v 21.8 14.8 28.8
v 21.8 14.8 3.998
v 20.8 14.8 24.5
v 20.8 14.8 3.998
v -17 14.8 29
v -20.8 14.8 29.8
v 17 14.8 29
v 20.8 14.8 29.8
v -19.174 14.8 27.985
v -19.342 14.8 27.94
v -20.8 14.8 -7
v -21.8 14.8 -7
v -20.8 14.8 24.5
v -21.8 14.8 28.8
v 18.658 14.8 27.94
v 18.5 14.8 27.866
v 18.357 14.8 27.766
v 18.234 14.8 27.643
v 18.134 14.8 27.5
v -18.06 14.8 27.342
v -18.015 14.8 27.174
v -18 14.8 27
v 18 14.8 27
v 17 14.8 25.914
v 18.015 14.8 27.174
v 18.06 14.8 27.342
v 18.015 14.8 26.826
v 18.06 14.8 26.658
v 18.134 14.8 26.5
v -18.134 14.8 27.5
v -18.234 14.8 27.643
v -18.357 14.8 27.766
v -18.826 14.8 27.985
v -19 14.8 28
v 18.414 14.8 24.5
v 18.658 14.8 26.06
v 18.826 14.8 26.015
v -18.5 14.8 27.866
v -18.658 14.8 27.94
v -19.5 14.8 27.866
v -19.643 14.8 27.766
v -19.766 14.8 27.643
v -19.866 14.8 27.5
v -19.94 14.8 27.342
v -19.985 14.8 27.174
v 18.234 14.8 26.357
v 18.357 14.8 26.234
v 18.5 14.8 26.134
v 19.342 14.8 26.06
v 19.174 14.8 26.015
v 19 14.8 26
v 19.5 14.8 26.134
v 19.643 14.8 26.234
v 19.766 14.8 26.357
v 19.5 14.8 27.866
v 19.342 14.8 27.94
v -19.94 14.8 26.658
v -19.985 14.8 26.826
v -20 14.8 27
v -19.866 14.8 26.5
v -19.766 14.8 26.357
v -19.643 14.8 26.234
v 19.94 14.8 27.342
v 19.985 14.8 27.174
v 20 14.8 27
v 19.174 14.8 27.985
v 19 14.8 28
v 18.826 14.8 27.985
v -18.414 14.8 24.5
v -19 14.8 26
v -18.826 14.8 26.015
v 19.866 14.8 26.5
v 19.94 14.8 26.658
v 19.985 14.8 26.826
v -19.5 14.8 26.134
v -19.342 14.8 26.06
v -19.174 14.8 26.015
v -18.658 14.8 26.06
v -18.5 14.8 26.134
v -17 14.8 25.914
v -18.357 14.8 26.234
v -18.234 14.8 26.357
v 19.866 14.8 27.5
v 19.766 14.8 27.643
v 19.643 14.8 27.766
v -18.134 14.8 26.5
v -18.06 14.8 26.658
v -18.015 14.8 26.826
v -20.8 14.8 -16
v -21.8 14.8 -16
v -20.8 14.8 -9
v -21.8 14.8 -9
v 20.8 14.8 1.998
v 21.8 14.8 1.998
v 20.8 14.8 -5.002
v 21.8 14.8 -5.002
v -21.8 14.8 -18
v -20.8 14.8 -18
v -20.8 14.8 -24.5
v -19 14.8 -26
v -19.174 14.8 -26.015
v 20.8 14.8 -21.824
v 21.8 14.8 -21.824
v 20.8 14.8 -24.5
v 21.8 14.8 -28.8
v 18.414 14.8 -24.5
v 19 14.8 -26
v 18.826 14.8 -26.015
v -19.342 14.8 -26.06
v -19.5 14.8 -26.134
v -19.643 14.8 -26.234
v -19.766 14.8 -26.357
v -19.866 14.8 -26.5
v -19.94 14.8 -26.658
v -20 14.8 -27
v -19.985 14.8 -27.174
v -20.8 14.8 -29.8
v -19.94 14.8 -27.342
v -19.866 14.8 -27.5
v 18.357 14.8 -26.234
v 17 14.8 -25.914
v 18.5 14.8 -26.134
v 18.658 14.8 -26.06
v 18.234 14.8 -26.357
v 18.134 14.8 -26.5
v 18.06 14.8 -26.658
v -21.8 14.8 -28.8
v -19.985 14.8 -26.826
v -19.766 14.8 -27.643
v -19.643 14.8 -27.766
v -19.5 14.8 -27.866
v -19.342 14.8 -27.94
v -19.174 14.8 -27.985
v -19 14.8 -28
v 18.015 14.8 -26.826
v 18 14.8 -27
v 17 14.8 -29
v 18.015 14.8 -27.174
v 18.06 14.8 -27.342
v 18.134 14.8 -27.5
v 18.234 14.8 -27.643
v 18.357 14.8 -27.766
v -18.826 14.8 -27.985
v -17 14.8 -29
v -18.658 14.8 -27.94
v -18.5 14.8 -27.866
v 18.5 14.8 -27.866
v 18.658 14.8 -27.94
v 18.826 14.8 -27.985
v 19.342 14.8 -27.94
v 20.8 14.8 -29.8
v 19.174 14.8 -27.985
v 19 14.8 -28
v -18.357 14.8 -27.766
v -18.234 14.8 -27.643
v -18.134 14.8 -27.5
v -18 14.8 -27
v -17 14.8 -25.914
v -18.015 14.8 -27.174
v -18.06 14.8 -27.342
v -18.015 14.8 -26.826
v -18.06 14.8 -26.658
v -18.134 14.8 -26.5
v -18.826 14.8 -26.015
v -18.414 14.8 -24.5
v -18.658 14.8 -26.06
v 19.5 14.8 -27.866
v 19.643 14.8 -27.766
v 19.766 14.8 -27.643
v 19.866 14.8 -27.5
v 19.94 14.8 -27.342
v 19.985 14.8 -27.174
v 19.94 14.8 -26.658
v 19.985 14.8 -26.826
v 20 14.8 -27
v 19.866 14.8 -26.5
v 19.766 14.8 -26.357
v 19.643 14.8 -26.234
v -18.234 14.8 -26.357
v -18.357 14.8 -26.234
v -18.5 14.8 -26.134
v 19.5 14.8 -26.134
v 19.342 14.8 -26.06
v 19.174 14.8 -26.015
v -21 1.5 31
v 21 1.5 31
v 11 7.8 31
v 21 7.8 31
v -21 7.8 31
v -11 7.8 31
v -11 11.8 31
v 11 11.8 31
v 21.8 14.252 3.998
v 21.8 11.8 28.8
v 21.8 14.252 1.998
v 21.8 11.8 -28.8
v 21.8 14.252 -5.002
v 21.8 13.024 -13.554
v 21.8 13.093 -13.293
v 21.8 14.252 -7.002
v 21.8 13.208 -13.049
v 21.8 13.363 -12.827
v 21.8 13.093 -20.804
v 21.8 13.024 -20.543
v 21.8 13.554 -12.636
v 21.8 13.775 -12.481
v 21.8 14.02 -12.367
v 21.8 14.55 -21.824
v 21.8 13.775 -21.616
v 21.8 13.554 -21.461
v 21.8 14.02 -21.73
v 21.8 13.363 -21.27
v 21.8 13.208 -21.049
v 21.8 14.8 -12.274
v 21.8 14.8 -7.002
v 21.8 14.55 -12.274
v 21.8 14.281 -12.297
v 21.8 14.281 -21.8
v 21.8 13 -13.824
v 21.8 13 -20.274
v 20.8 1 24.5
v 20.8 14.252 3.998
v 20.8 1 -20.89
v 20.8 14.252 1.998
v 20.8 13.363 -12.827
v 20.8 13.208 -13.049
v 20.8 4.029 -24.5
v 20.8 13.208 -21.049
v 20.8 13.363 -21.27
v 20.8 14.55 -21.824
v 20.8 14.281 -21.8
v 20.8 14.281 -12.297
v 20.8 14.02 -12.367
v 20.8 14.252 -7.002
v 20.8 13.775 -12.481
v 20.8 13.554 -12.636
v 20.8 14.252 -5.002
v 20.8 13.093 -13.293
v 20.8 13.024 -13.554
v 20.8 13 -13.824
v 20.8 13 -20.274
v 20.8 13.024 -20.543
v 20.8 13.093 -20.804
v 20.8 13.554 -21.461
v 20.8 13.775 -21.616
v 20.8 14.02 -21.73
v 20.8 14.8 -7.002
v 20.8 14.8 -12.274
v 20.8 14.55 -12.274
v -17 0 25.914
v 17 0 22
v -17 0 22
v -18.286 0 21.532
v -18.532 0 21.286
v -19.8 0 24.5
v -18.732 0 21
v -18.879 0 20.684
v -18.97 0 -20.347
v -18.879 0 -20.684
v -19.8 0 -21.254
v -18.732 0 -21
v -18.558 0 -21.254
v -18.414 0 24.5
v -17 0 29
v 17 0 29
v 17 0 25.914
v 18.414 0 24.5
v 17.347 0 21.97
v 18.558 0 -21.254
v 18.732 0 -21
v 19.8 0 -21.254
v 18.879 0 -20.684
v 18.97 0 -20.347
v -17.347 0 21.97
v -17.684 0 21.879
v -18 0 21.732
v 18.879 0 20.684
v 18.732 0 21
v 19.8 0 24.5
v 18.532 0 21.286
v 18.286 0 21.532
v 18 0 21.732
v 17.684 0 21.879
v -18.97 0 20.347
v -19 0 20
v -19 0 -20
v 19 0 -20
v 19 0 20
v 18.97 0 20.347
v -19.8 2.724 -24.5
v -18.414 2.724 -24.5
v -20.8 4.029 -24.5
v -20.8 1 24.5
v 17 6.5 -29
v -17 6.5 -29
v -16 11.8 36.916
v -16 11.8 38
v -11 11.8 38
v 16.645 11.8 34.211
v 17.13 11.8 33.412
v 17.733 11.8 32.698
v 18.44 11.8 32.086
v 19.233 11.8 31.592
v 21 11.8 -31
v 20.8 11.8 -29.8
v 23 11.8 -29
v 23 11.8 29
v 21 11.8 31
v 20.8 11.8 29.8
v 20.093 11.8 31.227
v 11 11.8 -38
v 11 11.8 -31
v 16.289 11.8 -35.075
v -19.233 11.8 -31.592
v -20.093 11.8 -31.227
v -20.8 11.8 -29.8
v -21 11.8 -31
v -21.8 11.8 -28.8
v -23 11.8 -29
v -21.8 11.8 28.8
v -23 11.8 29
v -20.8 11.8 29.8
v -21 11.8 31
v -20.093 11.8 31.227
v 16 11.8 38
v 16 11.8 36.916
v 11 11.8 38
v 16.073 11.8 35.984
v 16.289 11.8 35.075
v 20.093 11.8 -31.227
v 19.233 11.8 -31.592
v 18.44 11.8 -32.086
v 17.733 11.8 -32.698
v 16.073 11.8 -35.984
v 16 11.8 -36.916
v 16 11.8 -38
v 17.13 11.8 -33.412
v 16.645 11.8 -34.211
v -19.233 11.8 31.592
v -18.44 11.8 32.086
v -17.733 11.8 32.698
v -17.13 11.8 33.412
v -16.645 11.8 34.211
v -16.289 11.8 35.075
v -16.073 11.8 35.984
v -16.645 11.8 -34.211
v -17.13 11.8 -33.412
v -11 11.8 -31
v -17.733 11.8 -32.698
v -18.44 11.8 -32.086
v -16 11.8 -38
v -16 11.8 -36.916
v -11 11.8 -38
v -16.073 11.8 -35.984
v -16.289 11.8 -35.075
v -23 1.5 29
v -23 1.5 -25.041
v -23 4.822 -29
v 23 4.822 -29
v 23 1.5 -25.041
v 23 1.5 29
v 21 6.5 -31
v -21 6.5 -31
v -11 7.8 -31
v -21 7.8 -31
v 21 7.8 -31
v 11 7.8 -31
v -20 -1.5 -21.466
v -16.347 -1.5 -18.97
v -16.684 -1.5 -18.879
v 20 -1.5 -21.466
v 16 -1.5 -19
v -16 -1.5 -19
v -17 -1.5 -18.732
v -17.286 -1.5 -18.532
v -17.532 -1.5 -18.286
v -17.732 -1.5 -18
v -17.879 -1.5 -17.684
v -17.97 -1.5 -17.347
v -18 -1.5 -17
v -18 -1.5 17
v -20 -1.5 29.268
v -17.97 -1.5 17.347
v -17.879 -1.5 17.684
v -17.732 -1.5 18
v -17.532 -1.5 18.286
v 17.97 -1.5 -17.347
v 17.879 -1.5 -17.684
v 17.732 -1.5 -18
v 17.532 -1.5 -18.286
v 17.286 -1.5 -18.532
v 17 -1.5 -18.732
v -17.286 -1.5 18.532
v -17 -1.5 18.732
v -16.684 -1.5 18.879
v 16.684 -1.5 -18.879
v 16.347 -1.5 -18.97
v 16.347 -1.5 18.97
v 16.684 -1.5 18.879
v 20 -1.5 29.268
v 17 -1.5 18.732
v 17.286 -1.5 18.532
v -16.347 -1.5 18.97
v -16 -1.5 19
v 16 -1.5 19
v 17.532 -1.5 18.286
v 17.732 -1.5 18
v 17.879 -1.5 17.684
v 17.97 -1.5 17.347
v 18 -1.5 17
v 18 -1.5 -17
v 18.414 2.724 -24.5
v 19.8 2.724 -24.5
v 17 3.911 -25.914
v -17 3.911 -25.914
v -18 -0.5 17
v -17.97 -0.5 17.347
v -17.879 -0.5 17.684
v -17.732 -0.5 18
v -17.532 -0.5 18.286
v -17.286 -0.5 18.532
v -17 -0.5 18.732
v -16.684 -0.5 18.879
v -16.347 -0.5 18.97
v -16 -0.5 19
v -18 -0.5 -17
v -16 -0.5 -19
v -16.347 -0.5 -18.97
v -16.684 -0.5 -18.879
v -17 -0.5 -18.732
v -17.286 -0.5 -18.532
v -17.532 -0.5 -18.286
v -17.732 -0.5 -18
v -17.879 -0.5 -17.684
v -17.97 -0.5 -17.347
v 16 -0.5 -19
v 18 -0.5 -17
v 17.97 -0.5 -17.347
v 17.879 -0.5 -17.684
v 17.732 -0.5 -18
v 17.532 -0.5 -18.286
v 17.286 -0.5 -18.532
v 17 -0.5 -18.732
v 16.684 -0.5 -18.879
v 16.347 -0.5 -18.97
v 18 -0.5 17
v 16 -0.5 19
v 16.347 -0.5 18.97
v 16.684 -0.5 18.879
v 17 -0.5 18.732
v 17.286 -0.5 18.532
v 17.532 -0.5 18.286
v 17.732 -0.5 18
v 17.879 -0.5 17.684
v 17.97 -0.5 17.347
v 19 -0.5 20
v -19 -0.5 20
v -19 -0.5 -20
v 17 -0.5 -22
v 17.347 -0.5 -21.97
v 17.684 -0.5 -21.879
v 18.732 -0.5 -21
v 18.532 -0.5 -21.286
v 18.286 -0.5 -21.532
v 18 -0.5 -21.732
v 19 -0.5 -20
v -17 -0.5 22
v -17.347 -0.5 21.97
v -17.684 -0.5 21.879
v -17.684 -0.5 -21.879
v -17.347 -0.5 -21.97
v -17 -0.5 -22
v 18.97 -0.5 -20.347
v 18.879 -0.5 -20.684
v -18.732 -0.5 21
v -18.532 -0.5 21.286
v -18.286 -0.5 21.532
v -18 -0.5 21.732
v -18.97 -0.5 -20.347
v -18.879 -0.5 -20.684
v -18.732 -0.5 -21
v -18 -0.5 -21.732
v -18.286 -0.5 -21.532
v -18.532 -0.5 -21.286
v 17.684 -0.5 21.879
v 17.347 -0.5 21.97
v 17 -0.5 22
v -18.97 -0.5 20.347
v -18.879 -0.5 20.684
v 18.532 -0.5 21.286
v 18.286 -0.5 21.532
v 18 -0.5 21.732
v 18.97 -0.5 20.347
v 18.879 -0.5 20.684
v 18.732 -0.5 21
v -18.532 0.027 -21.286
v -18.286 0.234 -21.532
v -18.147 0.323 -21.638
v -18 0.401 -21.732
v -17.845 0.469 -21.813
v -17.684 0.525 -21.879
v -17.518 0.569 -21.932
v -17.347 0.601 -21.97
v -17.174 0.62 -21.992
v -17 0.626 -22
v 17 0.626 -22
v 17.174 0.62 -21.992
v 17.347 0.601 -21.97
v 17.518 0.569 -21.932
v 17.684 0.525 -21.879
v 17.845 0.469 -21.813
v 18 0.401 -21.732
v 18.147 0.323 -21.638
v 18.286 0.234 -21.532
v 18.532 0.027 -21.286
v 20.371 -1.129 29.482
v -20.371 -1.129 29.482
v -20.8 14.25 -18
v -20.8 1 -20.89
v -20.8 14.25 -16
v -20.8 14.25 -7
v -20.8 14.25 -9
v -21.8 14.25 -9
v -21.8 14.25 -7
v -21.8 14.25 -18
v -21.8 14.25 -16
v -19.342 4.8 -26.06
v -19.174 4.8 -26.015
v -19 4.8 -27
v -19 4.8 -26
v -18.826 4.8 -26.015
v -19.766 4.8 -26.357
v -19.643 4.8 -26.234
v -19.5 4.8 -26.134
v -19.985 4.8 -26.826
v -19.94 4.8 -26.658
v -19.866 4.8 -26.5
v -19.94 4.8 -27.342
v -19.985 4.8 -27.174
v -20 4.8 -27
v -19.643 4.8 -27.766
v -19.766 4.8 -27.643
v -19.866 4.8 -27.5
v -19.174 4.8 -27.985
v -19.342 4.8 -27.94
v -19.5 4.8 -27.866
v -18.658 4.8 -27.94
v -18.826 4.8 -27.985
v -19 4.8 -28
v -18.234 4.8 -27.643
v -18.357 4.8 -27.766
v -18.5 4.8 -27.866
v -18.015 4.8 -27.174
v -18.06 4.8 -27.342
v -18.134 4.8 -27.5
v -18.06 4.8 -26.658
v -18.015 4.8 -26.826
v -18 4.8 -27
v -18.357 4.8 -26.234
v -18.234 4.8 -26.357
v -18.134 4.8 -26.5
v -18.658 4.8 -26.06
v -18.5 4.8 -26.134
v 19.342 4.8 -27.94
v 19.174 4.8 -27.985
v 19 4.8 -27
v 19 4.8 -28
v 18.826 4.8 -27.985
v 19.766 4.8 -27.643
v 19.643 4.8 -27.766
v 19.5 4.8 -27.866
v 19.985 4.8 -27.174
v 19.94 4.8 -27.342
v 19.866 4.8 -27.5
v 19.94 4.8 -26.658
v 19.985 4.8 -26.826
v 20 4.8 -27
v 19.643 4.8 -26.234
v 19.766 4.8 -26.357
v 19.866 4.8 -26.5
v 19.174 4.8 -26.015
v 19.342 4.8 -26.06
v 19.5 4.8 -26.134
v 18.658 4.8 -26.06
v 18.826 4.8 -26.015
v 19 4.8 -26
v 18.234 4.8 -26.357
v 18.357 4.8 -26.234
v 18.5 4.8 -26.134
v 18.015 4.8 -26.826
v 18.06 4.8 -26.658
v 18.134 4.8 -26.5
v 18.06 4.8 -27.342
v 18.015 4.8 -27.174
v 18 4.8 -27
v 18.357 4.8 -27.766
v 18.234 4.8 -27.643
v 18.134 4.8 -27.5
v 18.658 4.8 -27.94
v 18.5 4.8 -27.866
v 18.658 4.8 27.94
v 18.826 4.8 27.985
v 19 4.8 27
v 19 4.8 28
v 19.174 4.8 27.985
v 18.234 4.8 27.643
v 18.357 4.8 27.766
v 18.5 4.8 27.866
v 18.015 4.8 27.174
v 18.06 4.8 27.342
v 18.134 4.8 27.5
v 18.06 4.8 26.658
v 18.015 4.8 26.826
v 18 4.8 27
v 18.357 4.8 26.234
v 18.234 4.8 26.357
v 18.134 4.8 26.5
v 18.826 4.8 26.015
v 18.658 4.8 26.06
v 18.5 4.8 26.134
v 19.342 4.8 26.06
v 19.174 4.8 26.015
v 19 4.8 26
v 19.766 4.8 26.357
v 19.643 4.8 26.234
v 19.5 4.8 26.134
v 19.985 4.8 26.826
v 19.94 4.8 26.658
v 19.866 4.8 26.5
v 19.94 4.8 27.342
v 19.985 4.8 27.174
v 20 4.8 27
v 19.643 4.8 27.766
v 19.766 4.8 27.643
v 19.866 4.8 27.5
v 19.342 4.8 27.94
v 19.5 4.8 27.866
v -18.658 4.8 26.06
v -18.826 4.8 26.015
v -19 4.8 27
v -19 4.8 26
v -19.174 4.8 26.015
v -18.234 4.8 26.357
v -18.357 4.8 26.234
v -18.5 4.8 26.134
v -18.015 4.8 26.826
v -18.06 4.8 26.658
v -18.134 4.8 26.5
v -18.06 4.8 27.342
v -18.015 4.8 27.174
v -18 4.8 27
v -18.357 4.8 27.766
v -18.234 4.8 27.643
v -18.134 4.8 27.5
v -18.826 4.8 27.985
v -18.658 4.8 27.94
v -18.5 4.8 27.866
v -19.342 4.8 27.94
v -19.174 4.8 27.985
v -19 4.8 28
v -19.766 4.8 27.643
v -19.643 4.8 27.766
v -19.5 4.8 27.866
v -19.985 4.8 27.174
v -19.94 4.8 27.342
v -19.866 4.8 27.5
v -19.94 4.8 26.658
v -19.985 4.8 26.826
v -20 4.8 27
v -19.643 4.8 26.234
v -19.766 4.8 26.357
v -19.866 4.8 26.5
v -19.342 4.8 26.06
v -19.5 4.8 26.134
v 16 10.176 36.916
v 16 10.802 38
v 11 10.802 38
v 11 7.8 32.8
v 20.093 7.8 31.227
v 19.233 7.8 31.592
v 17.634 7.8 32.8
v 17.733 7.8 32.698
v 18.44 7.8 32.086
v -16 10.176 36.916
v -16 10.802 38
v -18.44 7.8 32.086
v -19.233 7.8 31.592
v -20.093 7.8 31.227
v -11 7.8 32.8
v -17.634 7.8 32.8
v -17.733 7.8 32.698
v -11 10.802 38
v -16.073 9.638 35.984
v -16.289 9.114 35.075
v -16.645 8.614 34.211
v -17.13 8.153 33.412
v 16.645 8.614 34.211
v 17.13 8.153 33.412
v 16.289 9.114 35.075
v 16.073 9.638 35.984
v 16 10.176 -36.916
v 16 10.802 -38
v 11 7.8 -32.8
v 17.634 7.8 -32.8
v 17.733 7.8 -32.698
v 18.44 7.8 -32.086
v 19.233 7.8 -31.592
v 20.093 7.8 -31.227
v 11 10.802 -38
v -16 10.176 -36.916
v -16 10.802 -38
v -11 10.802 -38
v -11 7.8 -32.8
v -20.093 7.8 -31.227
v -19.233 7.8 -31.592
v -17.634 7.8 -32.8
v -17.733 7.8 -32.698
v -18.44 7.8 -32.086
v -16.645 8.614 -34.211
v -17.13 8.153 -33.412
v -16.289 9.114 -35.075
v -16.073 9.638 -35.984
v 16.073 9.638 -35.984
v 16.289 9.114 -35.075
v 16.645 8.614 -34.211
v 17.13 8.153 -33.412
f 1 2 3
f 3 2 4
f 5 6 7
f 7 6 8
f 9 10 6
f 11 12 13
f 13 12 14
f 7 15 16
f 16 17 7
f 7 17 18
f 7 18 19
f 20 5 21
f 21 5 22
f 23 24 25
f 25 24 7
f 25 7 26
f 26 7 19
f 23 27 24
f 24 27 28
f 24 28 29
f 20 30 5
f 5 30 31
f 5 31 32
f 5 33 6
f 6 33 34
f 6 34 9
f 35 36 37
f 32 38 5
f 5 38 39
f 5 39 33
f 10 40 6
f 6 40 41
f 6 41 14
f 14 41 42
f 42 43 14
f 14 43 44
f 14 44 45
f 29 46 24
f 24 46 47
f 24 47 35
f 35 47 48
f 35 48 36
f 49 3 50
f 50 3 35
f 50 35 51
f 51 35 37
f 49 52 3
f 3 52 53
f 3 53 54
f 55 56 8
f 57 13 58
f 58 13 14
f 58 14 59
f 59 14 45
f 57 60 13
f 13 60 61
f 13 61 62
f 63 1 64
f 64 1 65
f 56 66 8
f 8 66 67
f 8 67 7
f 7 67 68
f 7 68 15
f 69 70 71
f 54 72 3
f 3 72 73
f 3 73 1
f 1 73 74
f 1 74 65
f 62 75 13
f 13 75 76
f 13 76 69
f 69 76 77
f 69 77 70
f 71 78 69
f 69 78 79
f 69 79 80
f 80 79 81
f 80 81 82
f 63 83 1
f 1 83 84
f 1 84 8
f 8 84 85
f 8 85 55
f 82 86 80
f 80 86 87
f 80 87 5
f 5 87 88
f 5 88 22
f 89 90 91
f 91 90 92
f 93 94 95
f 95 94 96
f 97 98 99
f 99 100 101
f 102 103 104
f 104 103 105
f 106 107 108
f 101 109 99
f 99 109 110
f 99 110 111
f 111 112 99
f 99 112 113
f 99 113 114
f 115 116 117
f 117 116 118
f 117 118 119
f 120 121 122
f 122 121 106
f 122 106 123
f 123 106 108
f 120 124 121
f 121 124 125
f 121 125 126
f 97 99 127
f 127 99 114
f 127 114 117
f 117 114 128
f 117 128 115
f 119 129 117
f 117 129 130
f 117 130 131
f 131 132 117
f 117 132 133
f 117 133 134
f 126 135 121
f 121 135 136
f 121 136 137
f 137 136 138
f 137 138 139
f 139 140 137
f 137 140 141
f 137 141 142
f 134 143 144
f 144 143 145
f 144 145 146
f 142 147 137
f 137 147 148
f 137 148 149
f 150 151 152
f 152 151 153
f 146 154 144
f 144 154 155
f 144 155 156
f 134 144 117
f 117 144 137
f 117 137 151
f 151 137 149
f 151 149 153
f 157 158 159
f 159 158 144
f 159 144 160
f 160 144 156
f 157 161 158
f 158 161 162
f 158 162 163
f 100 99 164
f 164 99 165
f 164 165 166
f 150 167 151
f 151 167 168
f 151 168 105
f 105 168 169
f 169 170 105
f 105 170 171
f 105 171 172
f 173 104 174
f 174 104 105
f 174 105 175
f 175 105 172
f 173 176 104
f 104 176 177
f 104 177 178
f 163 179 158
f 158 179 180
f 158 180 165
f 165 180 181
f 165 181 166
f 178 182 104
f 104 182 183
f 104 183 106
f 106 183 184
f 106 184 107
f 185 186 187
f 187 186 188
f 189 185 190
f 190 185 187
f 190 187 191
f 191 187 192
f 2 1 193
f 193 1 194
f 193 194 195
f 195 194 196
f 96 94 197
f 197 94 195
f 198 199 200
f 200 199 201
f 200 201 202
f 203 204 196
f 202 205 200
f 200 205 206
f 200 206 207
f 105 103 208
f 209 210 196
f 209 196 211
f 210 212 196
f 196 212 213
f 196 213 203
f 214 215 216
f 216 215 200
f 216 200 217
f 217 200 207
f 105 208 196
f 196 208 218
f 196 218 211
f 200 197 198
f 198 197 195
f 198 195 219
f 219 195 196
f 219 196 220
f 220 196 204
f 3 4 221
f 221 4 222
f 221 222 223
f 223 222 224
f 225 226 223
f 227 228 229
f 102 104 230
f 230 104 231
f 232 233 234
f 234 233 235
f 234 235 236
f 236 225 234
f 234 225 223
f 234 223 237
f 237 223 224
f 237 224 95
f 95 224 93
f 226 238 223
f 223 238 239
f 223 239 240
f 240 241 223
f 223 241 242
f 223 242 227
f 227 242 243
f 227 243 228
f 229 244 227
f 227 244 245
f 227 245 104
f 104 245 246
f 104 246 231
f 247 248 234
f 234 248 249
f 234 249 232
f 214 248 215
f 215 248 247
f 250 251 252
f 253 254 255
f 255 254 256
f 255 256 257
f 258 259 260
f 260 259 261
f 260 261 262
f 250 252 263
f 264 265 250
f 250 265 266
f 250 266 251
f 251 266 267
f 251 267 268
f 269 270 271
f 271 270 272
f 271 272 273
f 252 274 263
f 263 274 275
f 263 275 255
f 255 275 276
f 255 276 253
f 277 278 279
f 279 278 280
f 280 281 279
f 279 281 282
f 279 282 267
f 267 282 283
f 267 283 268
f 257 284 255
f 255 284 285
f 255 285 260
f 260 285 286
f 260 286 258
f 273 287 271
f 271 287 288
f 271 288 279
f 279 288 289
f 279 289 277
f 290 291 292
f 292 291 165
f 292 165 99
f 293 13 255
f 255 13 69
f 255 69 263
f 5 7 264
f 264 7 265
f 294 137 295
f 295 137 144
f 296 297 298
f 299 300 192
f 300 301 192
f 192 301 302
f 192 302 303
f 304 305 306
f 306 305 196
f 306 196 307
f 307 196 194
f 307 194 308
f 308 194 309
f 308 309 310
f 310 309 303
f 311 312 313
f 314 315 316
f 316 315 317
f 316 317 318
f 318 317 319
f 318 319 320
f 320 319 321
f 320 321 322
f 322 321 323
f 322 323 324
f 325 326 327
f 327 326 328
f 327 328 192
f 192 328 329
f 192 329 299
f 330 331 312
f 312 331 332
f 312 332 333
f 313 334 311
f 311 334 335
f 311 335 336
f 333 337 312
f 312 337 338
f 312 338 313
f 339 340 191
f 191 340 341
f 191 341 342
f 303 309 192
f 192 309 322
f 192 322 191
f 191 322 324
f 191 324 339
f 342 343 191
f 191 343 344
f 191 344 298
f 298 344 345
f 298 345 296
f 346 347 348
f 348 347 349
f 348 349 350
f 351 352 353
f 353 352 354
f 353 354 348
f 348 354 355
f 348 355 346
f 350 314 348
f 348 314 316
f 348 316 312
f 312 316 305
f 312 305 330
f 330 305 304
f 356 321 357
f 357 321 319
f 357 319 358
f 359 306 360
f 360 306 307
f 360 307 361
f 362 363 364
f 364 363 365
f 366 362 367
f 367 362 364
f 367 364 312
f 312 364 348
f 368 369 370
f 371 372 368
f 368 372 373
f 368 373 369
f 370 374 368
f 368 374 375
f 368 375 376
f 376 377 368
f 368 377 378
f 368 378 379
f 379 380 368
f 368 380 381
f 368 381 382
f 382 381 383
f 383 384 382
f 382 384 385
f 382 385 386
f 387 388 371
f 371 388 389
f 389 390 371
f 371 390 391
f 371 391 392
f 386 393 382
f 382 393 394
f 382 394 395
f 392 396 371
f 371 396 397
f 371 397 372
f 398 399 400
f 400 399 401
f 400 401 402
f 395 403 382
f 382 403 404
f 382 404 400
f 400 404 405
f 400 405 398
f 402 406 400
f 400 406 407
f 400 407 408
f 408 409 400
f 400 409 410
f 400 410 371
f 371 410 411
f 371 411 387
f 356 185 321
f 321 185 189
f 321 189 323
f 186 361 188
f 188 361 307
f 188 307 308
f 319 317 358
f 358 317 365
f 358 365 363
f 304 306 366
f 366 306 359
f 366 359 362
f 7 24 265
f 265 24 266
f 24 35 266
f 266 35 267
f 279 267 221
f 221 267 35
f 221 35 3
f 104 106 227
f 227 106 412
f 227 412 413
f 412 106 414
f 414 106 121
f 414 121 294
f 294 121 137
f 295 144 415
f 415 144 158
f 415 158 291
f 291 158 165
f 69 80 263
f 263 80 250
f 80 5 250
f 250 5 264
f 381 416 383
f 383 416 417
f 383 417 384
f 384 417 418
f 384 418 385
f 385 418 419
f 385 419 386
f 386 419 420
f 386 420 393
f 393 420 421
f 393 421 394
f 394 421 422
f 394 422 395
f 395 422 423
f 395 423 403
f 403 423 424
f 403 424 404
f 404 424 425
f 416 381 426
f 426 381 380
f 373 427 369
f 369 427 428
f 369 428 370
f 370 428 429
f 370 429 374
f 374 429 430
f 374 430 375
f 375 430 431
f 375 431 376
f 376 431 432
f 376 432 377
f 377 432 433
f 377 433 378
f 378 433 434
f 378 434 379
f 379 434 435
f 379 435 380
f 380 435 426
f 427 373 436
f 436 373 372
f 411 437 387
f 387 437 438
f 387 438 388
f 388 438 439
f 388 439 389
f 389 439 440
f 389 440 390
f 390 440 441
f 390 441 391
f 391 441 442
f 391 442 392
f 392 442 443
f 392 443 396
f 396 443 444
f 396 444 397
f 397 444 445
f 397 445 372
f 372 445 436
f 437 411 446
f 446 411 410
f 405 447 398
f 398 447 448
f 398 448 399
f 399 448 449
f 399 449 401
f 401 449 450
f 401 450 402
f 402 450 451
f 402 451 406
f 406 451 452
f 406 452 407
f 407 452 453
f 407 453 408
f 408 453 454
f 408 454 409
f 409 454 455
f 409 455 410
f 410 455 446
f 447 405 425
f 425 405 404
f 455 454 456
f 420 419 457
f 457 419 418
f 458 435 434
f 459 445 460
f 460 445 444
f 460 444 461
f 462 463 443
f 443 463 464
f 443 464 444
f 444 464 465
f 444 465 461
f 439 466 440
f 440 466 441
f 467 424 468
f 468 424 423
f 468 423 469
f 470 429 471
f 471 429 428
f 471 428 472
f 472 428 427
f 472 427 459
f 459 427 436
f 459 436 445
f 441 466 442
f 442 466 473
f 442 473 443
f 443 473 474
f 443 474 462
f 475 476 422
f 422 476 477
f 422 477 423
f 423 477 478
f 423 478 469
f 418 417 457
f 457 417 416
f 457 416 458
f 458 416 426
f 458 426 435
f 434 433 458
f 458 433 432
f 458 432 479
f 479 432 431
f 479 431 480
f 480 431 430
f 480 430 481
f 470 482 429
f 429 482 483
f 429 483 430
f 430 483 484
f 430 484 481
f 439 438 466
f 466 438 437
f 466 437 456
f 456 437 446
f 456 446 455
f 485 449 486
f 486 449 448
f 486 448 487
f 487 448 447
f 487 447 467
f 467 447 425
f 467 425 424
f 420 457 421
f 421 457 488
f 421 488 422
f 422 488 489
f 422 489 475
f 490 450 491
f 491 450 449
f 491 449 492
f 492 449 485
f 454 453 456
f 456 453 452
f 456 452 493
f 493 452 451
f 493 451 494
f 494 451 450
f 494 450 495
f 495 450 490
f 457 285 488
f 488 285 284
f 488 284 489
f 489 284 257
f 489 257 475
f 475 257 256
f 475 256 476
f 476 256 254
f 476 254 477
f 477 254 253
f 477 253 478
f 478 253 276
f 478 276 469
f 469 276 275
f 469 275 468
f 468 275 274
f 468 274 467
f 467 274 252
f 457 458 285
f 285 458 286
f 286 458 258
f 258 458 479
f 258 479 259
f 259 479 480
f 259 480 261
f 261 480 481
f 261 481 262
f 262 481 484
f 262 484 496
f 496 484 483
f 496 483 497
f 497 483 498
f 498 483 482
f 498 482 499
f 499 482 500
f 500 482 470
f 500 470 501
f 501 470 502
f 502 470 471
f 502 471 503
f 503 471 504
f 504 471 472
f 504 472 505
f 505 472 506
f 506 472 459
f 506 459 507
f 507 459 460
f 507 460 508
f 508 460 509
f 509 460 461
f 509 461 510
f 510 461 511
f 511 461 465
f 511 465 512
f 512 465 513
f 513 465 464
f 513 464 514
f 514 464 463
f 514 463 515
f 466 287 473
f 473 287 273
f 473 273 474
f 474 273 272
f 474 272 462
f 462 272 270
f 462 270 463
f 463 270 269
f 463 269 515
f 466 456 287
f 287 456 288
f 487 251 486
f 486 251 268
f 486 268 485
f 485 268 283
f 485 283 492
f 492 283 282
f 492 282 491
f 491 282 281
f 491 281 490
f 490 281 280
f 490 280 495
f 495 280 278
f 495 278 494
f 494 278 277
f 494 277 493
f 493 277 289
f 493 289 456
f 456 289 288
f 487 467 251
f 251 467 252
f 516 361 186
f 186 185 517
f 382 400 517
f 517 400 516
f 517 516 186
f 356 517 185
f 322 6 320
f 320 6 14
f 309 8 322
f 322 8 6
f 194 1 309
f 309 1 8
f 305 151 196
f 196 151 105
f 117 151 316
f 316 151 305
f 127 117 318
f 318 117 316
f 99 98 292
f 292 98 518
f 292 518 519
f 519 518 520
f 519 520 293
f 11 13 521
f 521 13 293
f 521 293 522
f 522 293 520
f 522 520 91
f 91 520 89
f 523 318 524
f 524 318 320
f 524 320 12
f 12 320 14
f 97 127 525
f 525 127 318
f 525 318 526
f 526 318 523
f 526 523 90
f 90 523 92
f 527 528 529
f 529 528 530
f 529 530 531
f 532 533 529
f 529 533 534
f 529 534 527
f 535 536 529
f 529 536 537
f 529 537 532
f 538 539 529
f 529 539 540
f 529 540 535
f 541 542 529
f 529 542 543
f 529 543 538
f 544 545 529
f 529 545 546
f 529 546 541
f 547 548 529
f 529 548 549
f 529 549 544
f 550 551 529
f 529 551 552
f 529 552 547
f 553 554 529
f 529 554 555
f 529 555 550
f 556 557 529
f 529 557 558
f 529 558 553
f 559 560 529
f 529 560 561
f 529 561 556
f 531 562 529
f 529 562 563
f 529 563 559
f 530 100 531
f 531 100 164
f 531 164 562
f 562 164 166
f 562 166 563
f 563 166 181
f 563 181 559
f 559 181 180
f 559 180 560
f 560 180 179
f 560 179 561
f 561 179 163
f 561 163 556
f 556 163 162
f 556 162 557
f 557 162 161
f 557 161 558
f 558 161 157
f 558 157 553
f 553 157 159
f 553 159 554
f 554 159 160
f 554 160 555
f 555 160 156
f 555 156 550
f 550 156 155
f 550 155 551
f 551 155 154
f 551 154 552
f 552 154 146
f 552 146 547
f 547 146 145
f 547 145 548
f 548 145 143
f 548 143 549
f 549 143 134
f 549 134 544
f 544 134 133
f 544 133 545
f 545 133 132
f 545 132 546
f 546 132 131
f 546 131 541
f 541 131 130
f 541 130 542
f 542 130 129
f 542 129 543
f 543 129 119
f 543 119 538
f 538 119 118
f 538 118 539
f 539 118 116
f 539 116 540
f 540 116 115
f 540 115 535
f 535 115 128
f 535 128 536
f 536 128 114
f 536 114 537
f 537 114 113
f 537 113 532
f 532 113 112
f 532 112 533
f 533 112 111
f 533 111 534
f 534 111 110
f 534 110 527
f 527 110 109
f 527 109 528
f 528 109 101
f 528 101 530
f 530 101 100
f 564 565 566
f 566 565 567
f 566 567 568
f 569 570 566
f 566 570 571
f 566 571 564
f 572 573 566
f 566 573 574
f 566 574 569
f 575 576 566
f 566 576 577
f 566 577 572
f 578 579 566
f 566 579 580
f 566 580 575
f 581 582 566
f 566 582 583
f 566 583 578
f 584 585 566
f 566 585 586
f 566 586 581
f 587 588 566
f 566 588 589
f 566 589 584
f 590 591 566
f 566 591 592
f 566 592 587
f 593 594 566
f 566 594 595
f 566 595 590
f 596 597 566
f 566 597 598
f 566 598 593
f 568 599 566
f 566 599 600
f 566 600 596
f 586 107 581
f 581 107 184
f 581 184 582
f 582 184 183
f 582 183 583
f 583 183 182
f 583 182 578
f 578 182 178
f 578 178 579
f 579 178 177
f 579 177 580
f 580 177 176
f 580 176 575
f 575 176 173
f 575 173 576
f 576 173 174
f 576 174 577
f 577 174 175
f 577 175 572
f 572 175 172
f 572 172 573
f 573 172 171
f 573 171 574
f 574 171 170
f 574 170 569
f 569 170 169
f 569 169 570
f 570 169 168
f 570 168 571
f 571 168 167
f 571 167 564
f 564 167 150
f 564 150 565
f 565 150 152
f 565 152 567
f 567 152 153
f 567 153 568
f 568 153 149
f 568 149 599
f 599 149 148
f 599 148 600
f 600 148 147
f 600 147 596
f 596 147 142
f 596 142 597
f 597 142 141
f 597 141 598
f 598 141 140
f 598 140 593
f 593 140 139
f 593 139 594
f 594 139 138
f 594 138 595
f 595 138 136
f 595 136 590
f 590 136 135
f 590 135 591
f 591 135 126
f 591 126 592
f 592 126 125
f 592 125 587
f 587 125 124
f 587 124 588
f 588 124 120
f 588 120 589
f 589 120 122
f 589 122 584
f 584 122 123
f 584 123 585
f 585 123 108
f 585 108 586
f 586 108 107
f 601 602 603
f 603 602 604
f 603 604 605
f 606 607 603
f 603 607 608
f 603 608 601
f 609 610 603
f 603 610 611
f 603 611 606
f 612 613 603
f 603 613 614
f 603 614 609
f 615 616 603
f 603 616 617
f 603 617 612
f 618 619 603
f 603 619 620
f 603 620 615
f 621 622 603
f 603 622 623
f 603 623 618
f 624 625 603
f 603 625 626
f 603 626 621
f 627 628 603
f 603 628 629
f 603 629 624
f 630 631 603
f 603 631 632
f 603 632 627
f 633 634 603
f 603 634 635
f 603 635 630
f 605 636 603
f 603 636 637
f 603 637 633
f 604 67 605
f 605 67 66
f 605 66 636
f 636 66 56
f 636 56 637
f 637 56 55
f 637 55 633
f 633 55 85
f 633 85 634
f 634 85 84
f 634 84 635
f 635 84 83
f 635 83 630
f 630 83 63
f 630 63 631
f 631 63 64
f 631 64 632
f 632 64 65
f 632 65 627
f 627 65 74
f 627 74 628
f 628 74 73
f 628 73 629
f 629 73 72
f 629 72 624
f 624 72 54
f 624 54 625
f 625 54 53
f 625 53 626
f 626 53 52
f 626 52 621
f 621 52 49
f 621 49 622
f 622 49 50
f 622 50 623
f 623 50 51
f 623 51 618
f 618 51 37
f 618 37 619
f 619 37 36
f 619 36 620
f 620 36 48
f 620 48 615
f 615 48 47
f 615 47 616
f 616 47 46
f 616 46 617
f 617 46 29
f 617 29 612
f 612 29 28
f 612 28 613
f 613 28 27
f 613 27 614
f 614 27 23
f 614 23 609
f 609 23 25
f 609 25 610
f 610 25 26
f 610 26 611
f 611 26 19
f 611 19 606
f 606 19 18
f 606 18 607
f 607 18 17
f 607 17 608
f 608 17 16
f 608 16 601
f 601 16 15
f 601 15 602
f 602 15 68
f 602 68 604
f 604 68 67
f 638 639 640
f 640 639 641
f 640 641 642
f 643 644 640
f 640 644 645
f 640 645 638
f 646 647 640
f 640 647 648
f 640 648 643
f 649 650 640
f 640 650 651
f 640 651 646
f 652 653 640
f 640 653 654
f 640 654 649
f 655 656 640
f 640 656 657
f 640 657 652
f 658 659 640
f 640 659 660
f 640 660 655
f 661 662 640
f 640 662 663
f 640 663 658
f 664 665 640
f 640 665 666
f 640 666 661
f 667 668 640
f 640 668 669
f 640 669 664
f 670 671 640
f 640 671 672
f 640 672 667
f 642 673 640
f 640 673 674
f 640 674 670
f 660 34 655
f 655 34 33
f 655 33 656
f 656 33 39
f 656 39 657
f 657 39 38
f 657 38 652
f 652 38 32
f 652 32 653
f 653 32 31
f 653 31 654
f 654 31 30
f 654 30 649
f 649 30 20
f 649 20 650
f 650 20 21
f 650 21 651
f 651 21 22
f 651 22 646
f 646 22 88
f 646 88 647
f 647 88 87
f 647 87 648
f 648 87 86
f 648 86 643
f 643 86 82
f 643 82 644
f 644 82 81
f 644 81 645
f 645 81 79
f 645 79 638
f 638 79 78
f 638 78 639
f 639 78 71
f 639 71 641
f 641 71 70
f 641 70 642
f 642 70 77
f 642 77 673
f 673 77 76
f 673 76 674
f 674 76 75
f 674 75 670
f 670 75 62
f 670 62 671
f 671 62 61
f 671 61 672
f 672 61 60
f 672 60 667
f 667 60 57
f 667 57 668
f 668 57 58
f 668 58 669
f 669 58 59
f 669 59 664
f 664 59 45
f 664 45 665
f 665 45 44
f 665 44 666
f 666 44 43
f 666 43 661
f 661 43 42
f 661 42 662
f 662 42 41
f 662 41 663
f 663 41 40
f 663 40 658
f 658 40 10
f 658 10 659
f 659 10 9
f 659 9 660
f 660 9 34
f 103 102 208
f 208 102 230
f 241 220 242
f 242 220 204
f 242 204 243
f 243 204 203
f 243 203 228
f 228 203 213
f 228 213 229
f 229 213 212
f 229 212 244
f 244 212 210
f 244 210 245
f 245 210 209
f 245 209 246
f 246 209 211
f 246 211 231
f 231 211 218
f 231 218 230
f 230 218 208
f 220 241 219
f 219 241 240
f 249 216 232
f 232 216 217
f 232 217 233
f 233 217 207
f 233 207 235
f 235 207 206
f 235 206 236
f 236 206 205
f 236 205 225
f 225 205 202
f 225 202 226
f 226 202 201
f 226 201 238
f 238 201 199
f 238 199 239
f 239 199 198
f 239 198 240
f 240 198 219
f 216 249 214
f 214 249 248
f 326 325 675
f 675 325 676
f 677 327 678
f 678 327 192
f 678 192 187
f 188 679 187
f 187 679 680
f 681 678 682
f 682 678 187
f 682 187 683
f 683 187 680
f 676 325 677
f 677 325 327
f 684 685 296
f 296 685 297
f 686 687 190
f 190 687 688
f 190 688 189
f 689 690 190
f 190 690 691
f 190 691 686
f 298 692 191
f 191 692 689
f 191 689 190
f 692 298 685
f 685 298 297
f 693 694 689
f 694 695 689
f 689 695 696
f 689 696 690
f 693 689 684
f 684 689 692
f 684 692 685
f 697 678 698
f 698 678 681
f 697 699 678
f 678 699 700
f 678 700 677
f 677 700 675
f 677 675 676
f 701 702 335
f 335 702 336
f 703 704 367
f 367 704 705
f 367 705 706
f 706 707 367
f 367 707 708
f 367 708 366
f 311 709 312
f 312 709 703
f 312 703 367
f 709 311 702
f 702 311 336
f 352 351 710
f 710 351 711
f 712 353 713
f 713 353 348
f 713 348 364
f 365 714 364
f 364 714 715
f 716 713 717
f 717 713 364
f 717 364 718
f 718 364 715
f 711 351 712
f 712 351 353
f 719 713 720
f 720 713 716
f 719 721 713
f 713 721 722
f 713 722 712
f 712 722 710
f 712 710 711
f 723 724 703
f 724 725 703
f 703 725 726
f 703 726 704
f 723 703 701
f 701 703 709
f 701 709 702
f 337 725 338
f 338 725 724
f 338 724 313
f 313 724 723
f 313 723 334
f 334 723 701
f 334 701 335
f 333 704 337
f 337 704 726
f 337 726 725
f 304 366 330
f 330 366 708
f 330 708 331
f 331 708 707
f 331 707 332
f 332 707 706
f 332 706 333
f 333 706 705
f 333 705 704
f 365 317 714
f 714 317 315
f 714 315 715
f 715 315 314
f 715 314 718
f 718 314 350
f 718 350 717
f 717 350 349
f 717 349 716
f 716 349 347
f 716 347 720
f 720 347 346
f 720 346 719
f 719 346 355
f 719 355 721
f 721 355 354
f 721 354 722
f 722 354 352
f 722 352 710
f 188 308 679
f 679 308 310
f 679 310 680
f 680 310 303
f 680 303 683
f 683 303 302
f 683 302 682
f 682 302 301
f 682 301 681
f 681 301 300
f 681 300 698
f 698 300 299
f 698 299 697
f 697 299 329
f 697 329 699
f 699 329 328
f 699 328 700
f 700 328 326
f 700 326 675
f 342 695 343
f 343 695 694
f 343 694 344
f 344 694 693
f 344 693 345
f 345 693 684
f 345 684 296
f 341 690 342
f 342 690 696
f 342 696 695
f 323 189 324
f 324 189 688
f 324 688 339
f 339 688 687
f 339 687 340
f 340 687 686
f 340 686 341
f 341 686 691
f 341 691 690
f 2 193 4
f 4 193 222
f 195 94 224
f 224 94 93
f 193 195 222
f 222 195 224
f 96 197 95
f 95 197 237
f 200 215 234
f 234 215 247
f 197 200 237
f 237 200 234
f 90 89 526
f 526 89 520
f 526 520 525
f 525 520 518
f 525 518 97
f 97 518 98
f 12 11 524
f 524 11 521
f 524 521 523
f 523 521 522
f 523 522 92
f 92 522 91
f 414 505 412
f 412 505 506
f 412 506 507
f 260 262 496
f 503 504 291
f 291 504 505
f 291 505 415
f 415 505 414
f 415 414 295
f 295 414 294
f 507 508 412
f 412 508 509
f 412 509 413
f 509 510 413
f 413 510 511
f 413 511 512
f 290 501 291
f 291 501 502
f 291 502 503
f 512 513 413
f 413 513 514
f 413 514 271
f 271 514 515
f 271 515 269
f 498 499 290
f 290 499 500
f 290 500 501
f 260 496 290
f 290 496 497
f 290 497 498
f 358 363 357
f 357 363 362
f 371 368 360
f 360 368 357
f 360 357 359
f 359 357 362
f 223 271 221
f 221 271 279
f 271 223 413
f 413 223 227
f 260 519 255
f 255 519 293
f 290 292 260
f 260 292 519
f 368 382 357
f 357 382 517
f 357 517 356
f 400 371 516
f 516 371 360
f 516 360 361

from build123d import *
from OCP.BRepFilletAPI import BRepFilletAPI_MakeChamfer

# Parameters (mm, degrees)
SKETCH1_W                           = 46
SKETCH1_H                           = 62
SKETCH1_W_2                         = 42
SKETCH1_H_2                         = 58
MAIN_SKETCH_DEPTH                   = 11.8
SKETCH2_W                           = 46
SKETCH2_H                           = 62
FLOOR_2_DEPTH                       = 1.5
CHAMFER_OUTER_CORNERS_SIZE          = 2
MATERIAL_FOR_HOLES_DEPTH            = 11.8
GLASS_HOLE_DEPTH                    = 5
GLASS_GLUING_SURFACE_DEPTH          = 0.5
CHAMFER_TOP_SIZE                    = 3
CHAMFER_TOP_SIZE2                   = 1.732050808
SKETCH21_R                          = 1
MOUNTING_HOLES_DEPTH                = 7
LOWER_START                         = 14.8
SKETCH22_R                          = 1
LOWER_TAB_DEPTH                     = 14.8
TYPE_C_CONNECTOR_DEPTH              = 10
SKETCH20_W                          = 5
SKETCH20_H                          = 4
STRAP_MOUNTS_DEPTH                  = 7
STRAP_CHAMFER_SIZE                  = 5.2
STRAP_CHAMFER_SIZE2                 = 3.0022214
STRAP_CHAMFER_OF_STRAP_MIRROR_SIZE  = 5.2
STRAP_CHAMFER_OF_STRAP_MIRROR_SIZE2 = 3.0022214
STRAP_FILLET_R                      = 6
SKETCH26_W                          = 2
SKETCH26_H                          = 0.54848205
BUTTON_CUTOUT_DEPTH                 = 10
SKETCH28_W                          = 2
SKETCH28_H                          = 0.55
CUT_EXTRUDE21_DEPTH                 = 1.8
CHAMFER7_START                      = -22
CHAMFER7_DEPTH                      = 44
CHAMFER7_2_DEPTH                    = 5
CHAMFER7_START_2                    = 17
CHAMFER7_3_DEPTH                    = 5
CHAMFER7_START_3                    = 4.8
CHAMFER7_4_OUTLINE_R                = 1
CHAMFER7_4_DEPTH                    = 2.2
CHAMFER7_5_DEPTH                    = 4.8
CHAMFER8_SIZE                       = 8
CHAMFER8_SIZE2                      = 9.534028741
CHAMFER11_SIZE                      = 1
CHAMFER12_SIZE                      = 3


with BuildPart() as part:
    # Sketch1 → Main sketch (new body)
    with BuildSketch(Plane(origin=(0, 0, 0), x_dir=(1, 0, 0), z_dir=(0, 1, 0))):
        Rectangle(SKETCH1_W, SKETCH1_H)
        Rectangle(SKETCH1_W_2, SKETCH1_H_2, mode=Mode.SUBTRACT)
    extrude(amount=MAIN_SKETCH_DEPTH)

    # Sketch2 → Floor 2 (add)
    with BuildSketch(Plane.XZ):
        Rectangle(SKETCH2_W, SKETCH2_H)
    extrude(amount=FLOOR_2_DEPTH)

    # Chamfer_Outer Corners
    chamfer_outer_corners_edges = [part.edges().sort_by_distance(p)[0] for p in [
        (-23, 5.15, -31),
        (23, 5.15, -31),
        (23, 5.15, 31),
        (-23, 5.15, 31),
    ]]
    chamfer(chamfer_outer_corners_edges, length=CHAMFER_OUTER_CORNERS_SIZE)

    # Sketch17 → Material for holes (add)
    with BuildSketch(Plane(origin=(0, 11.8, -8.5), x_dir=(1, 0, 0), z_dir=(0, -1, 0))):
        Polygon((18.414213562, 33), (21, 33), (21, 37.5), (17, 37.5), (17, 34.414213562), align=None)
        Polygon((18.414213562, -16), (17, -17.414213562), (17, -20.5), (21, -20.5), (21, -16), align=None)
        Polygon((-18.414213562, -16), (-21, -16), (-21, -20.5), (-17, -20.5), (-17, -17.414213562), align=None)
        Polygon((-18.414213562, 33), (-17, 34.414213562), (-17, 37.5), (-21, 37.5), (-21, 33), align=None)
    extrude(amount=MATERIAL_FOR_HOLES_DEPTH)

    # Sketch14 → Glass hole (cut)
    with BuildSketch(Plane(origin=(0, 0, 0), x_dir=(1, 0, 0), z_dir=(0, 1, 0))):
        with BuildLine():
            Line((16, -19), (-16, -19))
            ThreePointArc((-16, -19), (-17.414213562, -18.414213562), (-18, -17))
            Line((-18, -17), (-18, 17))
            ThreePointArc((-18, 17), (-17.414213562, 18.414213562), (-16, 19))
            Line((-16, 19), (16, 19))
            ThreePointArc((16, 19), (17.414213562, 18.414213562), (18, 17))
            Line((18, 17), (18, -17))
            ThreePointArc((18, -17), (17.414213562, -18.414213562), (16, -19))
        make_face()
    extrude(amount=-GLASS_HOLE_DEPTH, mode=Mode.SUBTRACT)

    # Sketch11 → Glass gluing surface (cut)
    with BuildSketch(Plane(origin=(0, 0, 0), x_dir=(1, 0, 0), z_dir=(0, 1, 0))):
        with BuildLine():
            Line((17, -22), (-17, -22))
            ThreePointArc((-17, -22), (-18.414213562, -21.414213562), (-19, -20))
            Line((-19, -20), (-19, 20))
            ThreePointArc((-19, 20), (-18.414213562, 21.414213562), (-17, 22))
            Line((-17, 22), (17, 22))
            ThreePointArc((17, 22), (18.414213562, 21.414213562), (19, 20))
            Line((19, 20), (19, -20))
            ThreePointArc((19, -20), (18.414213562, -21.414213562), (17, -22))
        make_face()
    extrude(amount=-GLASS_GLUING_SURFACE_DEPTH, mode=Mode.SUBTRACT)

    # Chamfer_ top: one chamfer whose edges measure the first distance from different faces: ONE call of the kernel's chamfer builder (chamfer() names one face for all edges)
    chamfer_top_edges_1 = [part.edges().sort_by_distance(p)[0] for p in [
        (0, -1.5, 31),
    ]]
    chamfer_top_side_1 = [part.faces().sort_by_distance(p)[0] for p in [
        (0, 5.15, 31),
    ]]
    chamfer_top_edges_2 = [part.edges().sort_by_distance(p)[0] for p in [
        (22, -1.5, 30),
    ]]
    chamfer_top_side_2 = [part.faces().sort_by_distance(p)[0] for p in [
        (22, 5.15, 30),
    ]]
    chamfer_top_edges_3 = [part.edges().sort_by_distance(p)[0] for p in [
        (-22, -1.5, 30),
    ]]
    chamfer_top_side_3 = [part.faces().sort_by_distance(p)[0] for p in [
        (-22, 5.15, 30),
    ]]
    chamfer_top = BRepFilletAPI_MakeChamfer(part.part.solid().wrapped)
    for e in chamfer_top_edges_1:
        chamfer_top.Add(CHAMFER_TOP_SIZE, CHAMFER_TOP_SIZE2, e.wrapped, chamfer_top_side_1[0].wrapped)  # the first distance lies on this face
    for e in chamfer_top_edges_2:
        chamfer_top.Add(CHAMFER_TOP_SIZE, CHAMFER_TOP_SIZE2, e.wrapped, chamfer_top_side_2[0].wrapped)  # the first distance lies on this face
    for e in chamfer_top_edges_3:
        chamfer_top.Add(CHAMFER_TOP_SIZE, CHAMFER_TOP_SIZE2, e.wrapped, chamfer_top_side_3[0].wrapped)  # the first distance lies on this face
    add(Compound.cast(chamfer_top.Shape()), mode=Mode.REPLACE)

    # Sketch21 → Mounting Holes (cut)
    with BuildSketch(Plane(origin=(0, 11.8, 0), x_dir=(1, 0, 0), z_dir=(0, 1, 0))):
        with Locations(Location((19, -27, 0), (0, 0, 270))):
            Circle(SKETCH21_R)
        with Locations(Location((-19, -27, 0), (0, 0, 90))):
            Circle(SKETCH21_R)
        with Locations(Location((-19, 27, 0), (0, 0, 270))):
            Circle(SKETCH21_R)
        with Locations(Location((19, 27, 0), (0, 0, 90))):
            Circle(SKETCH21_R)
    extrude(amount=-MOUNTING_HOLES_DEPTH, mode=Mode.SUBTRACT)

    # Sketch22 → Lower Tab (add)
    with BuildSketch(Plane(origin=(0, 0, 0), x_dir=(1, 0, 0), z_dir=(0, 1, 0)).offset(LOWER_START)):
        Polygon((20.8, 29.8), (-20.8, 29.8), (-21.8, 28.8), (-21.8, -28.8), (-20.8, -29.8), (20.8, -29.8), (21.8, -28.8), (21.8, 28.8), align=None)
        with Locations(Location((-19, -27, 0), (0, 0, 270))):
            Circle(SKETCH22_R, mode=Mode.SUBTRACT)
        with Locations(Location((19, -27, 0), (0, 0, 270))):
            Circle(SKETCH22_R, mode=Mode.SUBTRACT)
        with Locations(Location((-19, 27, 0), (0, 0, 270))):
            Circle(SKETCH22_R, mode=Mode.SUBTRACT)
        with Locations(Location((19, 27, 0), (0, 0, 270))):
            Circle(SKETCH22_R, mode=Mode.SUBTRACT)
        Polygon((-20.8, -24.5), (-18.414213562, -24.5), (-17, -25.914213562), (-17, -29), (17, -29), (17, -25.914213562), (18.414213562, -24.5), (20.8, -24.5), (20.8, 24.5), (18.414213562, 24.5), (17, 25.914213562), (17, 29), (-17, 29), (-17, 25.914213562), (-18.414213562, 24.5), (-20.8, 24.5), align=None, mode=Mode.SUBTRACT)
    extrude(amount=-LOWER_TAB_DEPTH)

    # Sketch24 → Type C Connector (cut)
    with BuildSketch(Plane(origin=(21.8, 0, -8), x_dir=(0, 0, 1), z_dir=(-1, 0, 0))):
        with BuildLine():
            Line((-13.823605705, 14.8), (-4.273605705, 14.8))
            Line((-4.273605705, 14.8), (-4.273605705, 14.55))
            ThreePointArc((-4.273605705, 14.55), (-4.727590194, 13.453984489), (-5.823605705, 13))
            Line((-5.823605705, 13), (-12.273605705, 13))
            ThreePointArc((-12.273605705, 13), (-13.369621216, 13.453984489), (-13.823605705, 14.55))
            Line((-13.823605705, 14.55), (-13.823605705, 14.8))
        make_face()
    extrude(amount=TYPE_C_CONNECTOR_DEPTH, mode=Mode.SUBTRACT)

    # Sketch20 → Strap Mounts (add)
    with BuildSketch(Plane.XY.offset(31)):
        with Locations((13.5, 9.8)):
            Rectangle(SKETCH20_W, SKETCH20_H)
        with Locations((-13.5, 9.8)):
            Rectangle(SKETCH20_W, SKETCH20_H)
    strap_mounts = extrude(amount=STRAP_MOUNTS_DEPTH)

    # Strap Chamfer: one chamfer whose edges measure the first distance from different faces: ONE call of the kernel's chamfer builder (chamfer() names one face for all edges)
    strap_chamfer_edges_1 = [part.edges().sort_by_distance(p)[0] for p in [
        (13.5, 7.8, 38),
    ]]
    strap_chamfer_side_1 = [part.faces().sort_by_distance(p)[0] for p in [
        (13.5, 7.8, 34.5),
    ]]
    strap_chamfer_edges_2 = [part.edges().sort_by_distance(p)[0] for p in [
        (-13.5, 7.8, 38),
    ]]
    strap_chamfer_side_2 = [part.faces().sort_by_distance(p)[0] for p in [
        (-13.5, 7.8, 34.5),
    ]]
    strap_chamfer = BRepFilletAPI_MakeChamfer(part.part.solid().wrapped)
    for e in strap_chamfer_edges_1:
        strap_chamfer.Add(STRAP_CHAMFER_SIZE, STRAP_CHAMFER_SIZE2, e.wrapped, strap_chamfer_side_1[0].wrapped)  # the first distance lies on this face
    for e in strap_chamfer_edges_2:
        strap_chamfer.Add(STRAP_CHAMFER_SIZE, STRAP_CHAMFER_SIZE2, e.wrapped, strap_chamfer_side_2[0].wrapped)  # the first distance lies on this face
    add(Compound.cast(strap_chamfer.Shape()), mode=Mode.REPLACE)

    # Strap Mirror: Strap Mounts across plane
    add(strap_mounts.mirror(Plane.XY))

    # Strap Chamfer of Strap Mirror: one chamfer whose edges measure the first distance from different faces: ONE call of the kernel's chamfer builder (chamfer() names one face for all edges)
    strap_chamfer_of_strap_mirror_edges_1 = [part.edges().sort_by_distance(p)[0] for p in [
        (13.5, 7.8, -38),
    ]]
    strap_chamfer_of_strap_mirror_side_1 = [part.faces().sort_by_distance(p)[0] for p in [
        (13.5, 7.8, -34.5),
    ]]
    strap_chamfer_of_strap_mirror_edges_2 = [part.edges().sort_by_distance(p)[0] for p in [
        (-13.5, 7.8, -38),
    ]]
    strap_chamfer_of_strap_mirror_side_2 = [part.faces().sort_by_distance(p)[0] for p in [
        (-13.5, 7.8, -34.5),
    ]]
    strap_chamfer_of_strap_mirror = BRepFilletAPI_MakeChamfer(part.part.solid().wrapped)
    for e in strap_chamfer_of_strap_mirror_edges_1:
        strap_chamfer_of_strap_mirror.Add(STRAP_CHAMFER_OF_STRAP_MIRROR_SIZE, STRAP_CHAMFER_OF_STRAP_MIRROR_SIZE2, e.wrapped, strap_chamfer_of_strap_mirror_side_1[0].wrapped)  # the first distance lies on this face
    for e in strap_chamfer_of_strap_mirror_edges_2:
        strap_chamfer_of_strap_mirror.Add(STRAP_CHAMFER_OF_STRAP_MIRROR_SIZE, STRAP_CHAMFER_OF_STRAP_MIRROR_SIZE2, e.wrapped, strap_chamfer_of_strap_mirror_side_2[0].wrapped)  # the first distance lies on this face
    add(Compound.cast(strap_chamfer_of_strap_mirror.Shape()), mode=Mode.REPLACE)

    # Strap Fillet
    # the kernel refuses this fillet: 6 mm, written as the material it adds along each edge
    with BuildSketch(Plane(origin=(16, 11.8, 31), x_dir=(1, 0, 0), z_dir=(0, -1, 0))) as strap_fillet_piece_1_section:
        with BuildLine():
            CenterArc((6, 5.916079783), STRAP_FILLET_R, 180, 80.405931773)
            Line((0, 5.916079783), (0, 0))
            Line((0, 0), (5, 0))
        make_face()
    strap_fillet_piece_1 = extrude(amount=4, mode=Mode.PRIVATE)
    strap_fillet_piece_1 = split(strap_fillet_piece_1, bisect_by=Plane(origin=(16, 8.020577137, 33.182050808), z_dir=(0, 0.8660254037844382, -0.5000000000000009)), keep=Keep.TOP, mode=Mode.PRIVATE)
    add(strap_fillet_piece_1)
    with BuildSketch(Plane(origin=(-16, 11.8, 31), x_dir=(-1, 0, 0), z_dir=(0, -1, 0))) as strap_fillet_piece_2_section:
        with BuildLine():
            CenterArc((6, -5.916079783), STRAP_FILLET_R, 99.594068227, 80.405931773)
            Line((0, -5.916079783), (0, 0))
            Line((0, 0), (5, 0))
        make_face()
    strap_fillet_piece_2 = extrude(amount=4, mode=Mode.PRIVATE)
    strap_fillet_piece_2 = split(strap_fillet_piece_2, bisect_by=Plane(origin=(-16, 8.020577137, 33.182050808), z_dir=(0, 0.8660254037844382, -0.5000000000000009)), keep=Keep.TOP, mode=Mode.PRIVATE)
    add(strap_fillet_piece_2)
    with BuildSketch(Plane(origin=(16, 11.8, -31), x_dir=(0, 0, -1), z_dir=(0, -1, 0))) as strap_fillet_piece_3_section:
        with BuildLine():
            CenterArc((5.916079783, 6), STRAP_FILLET_R, 189.594068227, 80.405931773)
            Line((0, 5), (0, 0))
            Line((0, 0), (5.916079783, 0))
        make_face()
    strap_fillet_piece_3 = extrude(amount=4, mode=Mode.PRIVATE)
    strap_fillet_piece_3 = split(strap_fillet_piece_3, bisect_by=Plane(origin=(16, 8.020577137, -33.182050808), z_dir=(0, 0.8660254037844382, 0.5000000000000009)), keep=Keep.TOP, mode=Mode.PRIVATE)
    add(strap_fillet_piece_3)
    with BuildSketch(Plane(origin=(-16, 11.8, -31), x_dir=(-1, 0, 0), z_dir=(0, -1, 0))) as strap_fillet_piece_4_section:
        with BuildLine():
            CenterArc((6, 5.916079783), STRAP_FILLET_R, 180, 80.405931773)
            Line((0, 5.916079783), (0, 0))
            Line((0, 0), (5, 0))
        make_face()
    strap_fillet_piece_4 = extrude(amount=4, mode=Mode.PRIVATE)
    strap_fillet_piece_4 = split(strap_fillet_piece_4, bisect_by=Plane(origin=(-16, 8.020577137, -33.182050808), z_dir=(0, 0.8660254037844382, 0.5000000000000009)), keep=Keep.TOP, mode=Mode.PRIVATE)
    add(strap_fillet_piece_4)

    # Sketch26 → Button_Cutout (cut)
    with BuildSketch(Plane(origin=(21.8, 0, 0), x_dir=(0, 0, -1), z_dir=(1, 0, 0))):
        with Locations((6.001655918, 14.525758975)):
            Rectangle(SKETCH26_W, SKETCH26_H)
        with Locations((-2.998344082, 14.525758975)):
            Rectangle(SKETCH26_W, SKETCH26_H)
    extrude(amount=-BUTTON_CUTOUT_DEPTH, mode=Mode.SUBTRACT)

    # Sketch28 → Cut-Extrude21 (cut)
    with BuildSketch(Plane.ZY.offset(21.8)):
        with Locations((-8, 14.525)):
            Rectangle(SKETCH28_W, SKETCH28_H)
        with Locations((-17, 14.525)):
            Rectangle(SKETCH28_W, SKETCH28_H)
    extrude(amount=-CUT_EXTRUDE21_DEPTH, mode=Mode.SUBTRACT)

    # Chamfer7: read off the stored shape, not the designer's step
    # Chamfer7 outline → Chamfer7 (add)
    with BuildSketch(Plane.YZ.offset(CHAMFER7_START)):
        Polygon((0.626302582, -22), (0, -22), (0, -29), (6.5, -29), align=None)
    extrude(amount=CHAMFER7_DEPTH)

    # Chamfer7 2 outline → Chamfer7 2 (add)
    with BuildSketch(Plane.YZ.offset(CHAMFER7_START)):
        Polygon((0, -21.253601648), (0, -22), (0.626302582, -22), align=None)
    extrude(amount=CHAMFER7_2_DEPTH)

    # Chamfer7 3 outline → Chamfer7 3 (add)
    with BuildSketch(Plane.YZ.offset(CHAMFER7_START_2)):
        Polygon((0, -21.253601648), (0, -22), (0.626302582, -22), align=None)
    extrude(amount=CHAMFER7_3_DEPTH)

    # Chamfer7 4 outline → Chamfer7 4 (cut)
    with BuildSketch(Plane(origin=(0, 0, 0), x_dir=(1, 0, 0), z_dir=(0, 1, 0)).offset(CHAMFER7_START_3)):
        with Locations((-19, 27)):
            Circle(CHAMFER7_4_OUTLINE_R)
        with Locations((19, 27)):
            Circle(CHAMFER7_4_OUTLINE_R)
    extrude(amount=CHAMFER7_4_DEPTH, mode=Mode.SUBTRACT)

    # Chamfer7 5 outline → Chamfer7 5 (cut)
    with BuildSketch(Plane(origin=(0, 0, 0), x_dir=(1, 0, 0), z_dir=(0, 1, 0))):
        with BuildLine():
            Line((17, 22), (17, 21.253601648))
            Line((17, 21.253601648), (18.558359043, 21.253601648))
            ThreePointArc((18.558359043, 21.253601648), (17.863943489, 21.803774279), (17, 22))
        make_face()
        with BuildLine():
            ThreePointArc((-17, 22), (-17.863943489, 21.803774279), (-18.558359043, 21.253601648))
            Line((-18.558359043, 21.253601648), (-17, 21.253601648))
            Line((-17, 21.253601648), (-17, 22))
        make_face()
    extrude(amount=CHAMFER7_5_DEPTH, mode=Mode.SUBTRACT)

    # Chamfer8
    chamfer8_edges = [part.edges().sort_by_distance(p)[0] for p in [
        (0, -1.5, -31),
    ]]
    chamfer8_side = [part.faces().sort_by_distance(p)[0] for p in [
        (0, 4.372732971, -31),
    ]]
    chamfer(chamfer8_edges, length=CHAMFER8_SIZE, length2=CHAMFER8_SIZE2, reference=chamfer8_side[0])

    # Chamfer11
    chamfer11_edges = [part.edges().sort_by_distance(p)[0] for p in [
        (20.8, 0, 1.623199176),
        (-20.8, 0, 1.623199176),
        (-20.8, 1.675177121, -23.25),
        (20.8, 1.675177121, -23.25),
    ]]
    chamfer(chamfer11_edges, length=CHAMFER11_SIZE)

    # Chamfer12
    chamfer12_edges = [part.edges().sort_by_distance(p)[0] for p in [
        (-23, -1.5, 2.542269499),
        (23, -1.5, 2.542269499),
    ]]
    chamfer(chamfer12_edges, length=CHAMFER12_SIZE)


solid = part.part
